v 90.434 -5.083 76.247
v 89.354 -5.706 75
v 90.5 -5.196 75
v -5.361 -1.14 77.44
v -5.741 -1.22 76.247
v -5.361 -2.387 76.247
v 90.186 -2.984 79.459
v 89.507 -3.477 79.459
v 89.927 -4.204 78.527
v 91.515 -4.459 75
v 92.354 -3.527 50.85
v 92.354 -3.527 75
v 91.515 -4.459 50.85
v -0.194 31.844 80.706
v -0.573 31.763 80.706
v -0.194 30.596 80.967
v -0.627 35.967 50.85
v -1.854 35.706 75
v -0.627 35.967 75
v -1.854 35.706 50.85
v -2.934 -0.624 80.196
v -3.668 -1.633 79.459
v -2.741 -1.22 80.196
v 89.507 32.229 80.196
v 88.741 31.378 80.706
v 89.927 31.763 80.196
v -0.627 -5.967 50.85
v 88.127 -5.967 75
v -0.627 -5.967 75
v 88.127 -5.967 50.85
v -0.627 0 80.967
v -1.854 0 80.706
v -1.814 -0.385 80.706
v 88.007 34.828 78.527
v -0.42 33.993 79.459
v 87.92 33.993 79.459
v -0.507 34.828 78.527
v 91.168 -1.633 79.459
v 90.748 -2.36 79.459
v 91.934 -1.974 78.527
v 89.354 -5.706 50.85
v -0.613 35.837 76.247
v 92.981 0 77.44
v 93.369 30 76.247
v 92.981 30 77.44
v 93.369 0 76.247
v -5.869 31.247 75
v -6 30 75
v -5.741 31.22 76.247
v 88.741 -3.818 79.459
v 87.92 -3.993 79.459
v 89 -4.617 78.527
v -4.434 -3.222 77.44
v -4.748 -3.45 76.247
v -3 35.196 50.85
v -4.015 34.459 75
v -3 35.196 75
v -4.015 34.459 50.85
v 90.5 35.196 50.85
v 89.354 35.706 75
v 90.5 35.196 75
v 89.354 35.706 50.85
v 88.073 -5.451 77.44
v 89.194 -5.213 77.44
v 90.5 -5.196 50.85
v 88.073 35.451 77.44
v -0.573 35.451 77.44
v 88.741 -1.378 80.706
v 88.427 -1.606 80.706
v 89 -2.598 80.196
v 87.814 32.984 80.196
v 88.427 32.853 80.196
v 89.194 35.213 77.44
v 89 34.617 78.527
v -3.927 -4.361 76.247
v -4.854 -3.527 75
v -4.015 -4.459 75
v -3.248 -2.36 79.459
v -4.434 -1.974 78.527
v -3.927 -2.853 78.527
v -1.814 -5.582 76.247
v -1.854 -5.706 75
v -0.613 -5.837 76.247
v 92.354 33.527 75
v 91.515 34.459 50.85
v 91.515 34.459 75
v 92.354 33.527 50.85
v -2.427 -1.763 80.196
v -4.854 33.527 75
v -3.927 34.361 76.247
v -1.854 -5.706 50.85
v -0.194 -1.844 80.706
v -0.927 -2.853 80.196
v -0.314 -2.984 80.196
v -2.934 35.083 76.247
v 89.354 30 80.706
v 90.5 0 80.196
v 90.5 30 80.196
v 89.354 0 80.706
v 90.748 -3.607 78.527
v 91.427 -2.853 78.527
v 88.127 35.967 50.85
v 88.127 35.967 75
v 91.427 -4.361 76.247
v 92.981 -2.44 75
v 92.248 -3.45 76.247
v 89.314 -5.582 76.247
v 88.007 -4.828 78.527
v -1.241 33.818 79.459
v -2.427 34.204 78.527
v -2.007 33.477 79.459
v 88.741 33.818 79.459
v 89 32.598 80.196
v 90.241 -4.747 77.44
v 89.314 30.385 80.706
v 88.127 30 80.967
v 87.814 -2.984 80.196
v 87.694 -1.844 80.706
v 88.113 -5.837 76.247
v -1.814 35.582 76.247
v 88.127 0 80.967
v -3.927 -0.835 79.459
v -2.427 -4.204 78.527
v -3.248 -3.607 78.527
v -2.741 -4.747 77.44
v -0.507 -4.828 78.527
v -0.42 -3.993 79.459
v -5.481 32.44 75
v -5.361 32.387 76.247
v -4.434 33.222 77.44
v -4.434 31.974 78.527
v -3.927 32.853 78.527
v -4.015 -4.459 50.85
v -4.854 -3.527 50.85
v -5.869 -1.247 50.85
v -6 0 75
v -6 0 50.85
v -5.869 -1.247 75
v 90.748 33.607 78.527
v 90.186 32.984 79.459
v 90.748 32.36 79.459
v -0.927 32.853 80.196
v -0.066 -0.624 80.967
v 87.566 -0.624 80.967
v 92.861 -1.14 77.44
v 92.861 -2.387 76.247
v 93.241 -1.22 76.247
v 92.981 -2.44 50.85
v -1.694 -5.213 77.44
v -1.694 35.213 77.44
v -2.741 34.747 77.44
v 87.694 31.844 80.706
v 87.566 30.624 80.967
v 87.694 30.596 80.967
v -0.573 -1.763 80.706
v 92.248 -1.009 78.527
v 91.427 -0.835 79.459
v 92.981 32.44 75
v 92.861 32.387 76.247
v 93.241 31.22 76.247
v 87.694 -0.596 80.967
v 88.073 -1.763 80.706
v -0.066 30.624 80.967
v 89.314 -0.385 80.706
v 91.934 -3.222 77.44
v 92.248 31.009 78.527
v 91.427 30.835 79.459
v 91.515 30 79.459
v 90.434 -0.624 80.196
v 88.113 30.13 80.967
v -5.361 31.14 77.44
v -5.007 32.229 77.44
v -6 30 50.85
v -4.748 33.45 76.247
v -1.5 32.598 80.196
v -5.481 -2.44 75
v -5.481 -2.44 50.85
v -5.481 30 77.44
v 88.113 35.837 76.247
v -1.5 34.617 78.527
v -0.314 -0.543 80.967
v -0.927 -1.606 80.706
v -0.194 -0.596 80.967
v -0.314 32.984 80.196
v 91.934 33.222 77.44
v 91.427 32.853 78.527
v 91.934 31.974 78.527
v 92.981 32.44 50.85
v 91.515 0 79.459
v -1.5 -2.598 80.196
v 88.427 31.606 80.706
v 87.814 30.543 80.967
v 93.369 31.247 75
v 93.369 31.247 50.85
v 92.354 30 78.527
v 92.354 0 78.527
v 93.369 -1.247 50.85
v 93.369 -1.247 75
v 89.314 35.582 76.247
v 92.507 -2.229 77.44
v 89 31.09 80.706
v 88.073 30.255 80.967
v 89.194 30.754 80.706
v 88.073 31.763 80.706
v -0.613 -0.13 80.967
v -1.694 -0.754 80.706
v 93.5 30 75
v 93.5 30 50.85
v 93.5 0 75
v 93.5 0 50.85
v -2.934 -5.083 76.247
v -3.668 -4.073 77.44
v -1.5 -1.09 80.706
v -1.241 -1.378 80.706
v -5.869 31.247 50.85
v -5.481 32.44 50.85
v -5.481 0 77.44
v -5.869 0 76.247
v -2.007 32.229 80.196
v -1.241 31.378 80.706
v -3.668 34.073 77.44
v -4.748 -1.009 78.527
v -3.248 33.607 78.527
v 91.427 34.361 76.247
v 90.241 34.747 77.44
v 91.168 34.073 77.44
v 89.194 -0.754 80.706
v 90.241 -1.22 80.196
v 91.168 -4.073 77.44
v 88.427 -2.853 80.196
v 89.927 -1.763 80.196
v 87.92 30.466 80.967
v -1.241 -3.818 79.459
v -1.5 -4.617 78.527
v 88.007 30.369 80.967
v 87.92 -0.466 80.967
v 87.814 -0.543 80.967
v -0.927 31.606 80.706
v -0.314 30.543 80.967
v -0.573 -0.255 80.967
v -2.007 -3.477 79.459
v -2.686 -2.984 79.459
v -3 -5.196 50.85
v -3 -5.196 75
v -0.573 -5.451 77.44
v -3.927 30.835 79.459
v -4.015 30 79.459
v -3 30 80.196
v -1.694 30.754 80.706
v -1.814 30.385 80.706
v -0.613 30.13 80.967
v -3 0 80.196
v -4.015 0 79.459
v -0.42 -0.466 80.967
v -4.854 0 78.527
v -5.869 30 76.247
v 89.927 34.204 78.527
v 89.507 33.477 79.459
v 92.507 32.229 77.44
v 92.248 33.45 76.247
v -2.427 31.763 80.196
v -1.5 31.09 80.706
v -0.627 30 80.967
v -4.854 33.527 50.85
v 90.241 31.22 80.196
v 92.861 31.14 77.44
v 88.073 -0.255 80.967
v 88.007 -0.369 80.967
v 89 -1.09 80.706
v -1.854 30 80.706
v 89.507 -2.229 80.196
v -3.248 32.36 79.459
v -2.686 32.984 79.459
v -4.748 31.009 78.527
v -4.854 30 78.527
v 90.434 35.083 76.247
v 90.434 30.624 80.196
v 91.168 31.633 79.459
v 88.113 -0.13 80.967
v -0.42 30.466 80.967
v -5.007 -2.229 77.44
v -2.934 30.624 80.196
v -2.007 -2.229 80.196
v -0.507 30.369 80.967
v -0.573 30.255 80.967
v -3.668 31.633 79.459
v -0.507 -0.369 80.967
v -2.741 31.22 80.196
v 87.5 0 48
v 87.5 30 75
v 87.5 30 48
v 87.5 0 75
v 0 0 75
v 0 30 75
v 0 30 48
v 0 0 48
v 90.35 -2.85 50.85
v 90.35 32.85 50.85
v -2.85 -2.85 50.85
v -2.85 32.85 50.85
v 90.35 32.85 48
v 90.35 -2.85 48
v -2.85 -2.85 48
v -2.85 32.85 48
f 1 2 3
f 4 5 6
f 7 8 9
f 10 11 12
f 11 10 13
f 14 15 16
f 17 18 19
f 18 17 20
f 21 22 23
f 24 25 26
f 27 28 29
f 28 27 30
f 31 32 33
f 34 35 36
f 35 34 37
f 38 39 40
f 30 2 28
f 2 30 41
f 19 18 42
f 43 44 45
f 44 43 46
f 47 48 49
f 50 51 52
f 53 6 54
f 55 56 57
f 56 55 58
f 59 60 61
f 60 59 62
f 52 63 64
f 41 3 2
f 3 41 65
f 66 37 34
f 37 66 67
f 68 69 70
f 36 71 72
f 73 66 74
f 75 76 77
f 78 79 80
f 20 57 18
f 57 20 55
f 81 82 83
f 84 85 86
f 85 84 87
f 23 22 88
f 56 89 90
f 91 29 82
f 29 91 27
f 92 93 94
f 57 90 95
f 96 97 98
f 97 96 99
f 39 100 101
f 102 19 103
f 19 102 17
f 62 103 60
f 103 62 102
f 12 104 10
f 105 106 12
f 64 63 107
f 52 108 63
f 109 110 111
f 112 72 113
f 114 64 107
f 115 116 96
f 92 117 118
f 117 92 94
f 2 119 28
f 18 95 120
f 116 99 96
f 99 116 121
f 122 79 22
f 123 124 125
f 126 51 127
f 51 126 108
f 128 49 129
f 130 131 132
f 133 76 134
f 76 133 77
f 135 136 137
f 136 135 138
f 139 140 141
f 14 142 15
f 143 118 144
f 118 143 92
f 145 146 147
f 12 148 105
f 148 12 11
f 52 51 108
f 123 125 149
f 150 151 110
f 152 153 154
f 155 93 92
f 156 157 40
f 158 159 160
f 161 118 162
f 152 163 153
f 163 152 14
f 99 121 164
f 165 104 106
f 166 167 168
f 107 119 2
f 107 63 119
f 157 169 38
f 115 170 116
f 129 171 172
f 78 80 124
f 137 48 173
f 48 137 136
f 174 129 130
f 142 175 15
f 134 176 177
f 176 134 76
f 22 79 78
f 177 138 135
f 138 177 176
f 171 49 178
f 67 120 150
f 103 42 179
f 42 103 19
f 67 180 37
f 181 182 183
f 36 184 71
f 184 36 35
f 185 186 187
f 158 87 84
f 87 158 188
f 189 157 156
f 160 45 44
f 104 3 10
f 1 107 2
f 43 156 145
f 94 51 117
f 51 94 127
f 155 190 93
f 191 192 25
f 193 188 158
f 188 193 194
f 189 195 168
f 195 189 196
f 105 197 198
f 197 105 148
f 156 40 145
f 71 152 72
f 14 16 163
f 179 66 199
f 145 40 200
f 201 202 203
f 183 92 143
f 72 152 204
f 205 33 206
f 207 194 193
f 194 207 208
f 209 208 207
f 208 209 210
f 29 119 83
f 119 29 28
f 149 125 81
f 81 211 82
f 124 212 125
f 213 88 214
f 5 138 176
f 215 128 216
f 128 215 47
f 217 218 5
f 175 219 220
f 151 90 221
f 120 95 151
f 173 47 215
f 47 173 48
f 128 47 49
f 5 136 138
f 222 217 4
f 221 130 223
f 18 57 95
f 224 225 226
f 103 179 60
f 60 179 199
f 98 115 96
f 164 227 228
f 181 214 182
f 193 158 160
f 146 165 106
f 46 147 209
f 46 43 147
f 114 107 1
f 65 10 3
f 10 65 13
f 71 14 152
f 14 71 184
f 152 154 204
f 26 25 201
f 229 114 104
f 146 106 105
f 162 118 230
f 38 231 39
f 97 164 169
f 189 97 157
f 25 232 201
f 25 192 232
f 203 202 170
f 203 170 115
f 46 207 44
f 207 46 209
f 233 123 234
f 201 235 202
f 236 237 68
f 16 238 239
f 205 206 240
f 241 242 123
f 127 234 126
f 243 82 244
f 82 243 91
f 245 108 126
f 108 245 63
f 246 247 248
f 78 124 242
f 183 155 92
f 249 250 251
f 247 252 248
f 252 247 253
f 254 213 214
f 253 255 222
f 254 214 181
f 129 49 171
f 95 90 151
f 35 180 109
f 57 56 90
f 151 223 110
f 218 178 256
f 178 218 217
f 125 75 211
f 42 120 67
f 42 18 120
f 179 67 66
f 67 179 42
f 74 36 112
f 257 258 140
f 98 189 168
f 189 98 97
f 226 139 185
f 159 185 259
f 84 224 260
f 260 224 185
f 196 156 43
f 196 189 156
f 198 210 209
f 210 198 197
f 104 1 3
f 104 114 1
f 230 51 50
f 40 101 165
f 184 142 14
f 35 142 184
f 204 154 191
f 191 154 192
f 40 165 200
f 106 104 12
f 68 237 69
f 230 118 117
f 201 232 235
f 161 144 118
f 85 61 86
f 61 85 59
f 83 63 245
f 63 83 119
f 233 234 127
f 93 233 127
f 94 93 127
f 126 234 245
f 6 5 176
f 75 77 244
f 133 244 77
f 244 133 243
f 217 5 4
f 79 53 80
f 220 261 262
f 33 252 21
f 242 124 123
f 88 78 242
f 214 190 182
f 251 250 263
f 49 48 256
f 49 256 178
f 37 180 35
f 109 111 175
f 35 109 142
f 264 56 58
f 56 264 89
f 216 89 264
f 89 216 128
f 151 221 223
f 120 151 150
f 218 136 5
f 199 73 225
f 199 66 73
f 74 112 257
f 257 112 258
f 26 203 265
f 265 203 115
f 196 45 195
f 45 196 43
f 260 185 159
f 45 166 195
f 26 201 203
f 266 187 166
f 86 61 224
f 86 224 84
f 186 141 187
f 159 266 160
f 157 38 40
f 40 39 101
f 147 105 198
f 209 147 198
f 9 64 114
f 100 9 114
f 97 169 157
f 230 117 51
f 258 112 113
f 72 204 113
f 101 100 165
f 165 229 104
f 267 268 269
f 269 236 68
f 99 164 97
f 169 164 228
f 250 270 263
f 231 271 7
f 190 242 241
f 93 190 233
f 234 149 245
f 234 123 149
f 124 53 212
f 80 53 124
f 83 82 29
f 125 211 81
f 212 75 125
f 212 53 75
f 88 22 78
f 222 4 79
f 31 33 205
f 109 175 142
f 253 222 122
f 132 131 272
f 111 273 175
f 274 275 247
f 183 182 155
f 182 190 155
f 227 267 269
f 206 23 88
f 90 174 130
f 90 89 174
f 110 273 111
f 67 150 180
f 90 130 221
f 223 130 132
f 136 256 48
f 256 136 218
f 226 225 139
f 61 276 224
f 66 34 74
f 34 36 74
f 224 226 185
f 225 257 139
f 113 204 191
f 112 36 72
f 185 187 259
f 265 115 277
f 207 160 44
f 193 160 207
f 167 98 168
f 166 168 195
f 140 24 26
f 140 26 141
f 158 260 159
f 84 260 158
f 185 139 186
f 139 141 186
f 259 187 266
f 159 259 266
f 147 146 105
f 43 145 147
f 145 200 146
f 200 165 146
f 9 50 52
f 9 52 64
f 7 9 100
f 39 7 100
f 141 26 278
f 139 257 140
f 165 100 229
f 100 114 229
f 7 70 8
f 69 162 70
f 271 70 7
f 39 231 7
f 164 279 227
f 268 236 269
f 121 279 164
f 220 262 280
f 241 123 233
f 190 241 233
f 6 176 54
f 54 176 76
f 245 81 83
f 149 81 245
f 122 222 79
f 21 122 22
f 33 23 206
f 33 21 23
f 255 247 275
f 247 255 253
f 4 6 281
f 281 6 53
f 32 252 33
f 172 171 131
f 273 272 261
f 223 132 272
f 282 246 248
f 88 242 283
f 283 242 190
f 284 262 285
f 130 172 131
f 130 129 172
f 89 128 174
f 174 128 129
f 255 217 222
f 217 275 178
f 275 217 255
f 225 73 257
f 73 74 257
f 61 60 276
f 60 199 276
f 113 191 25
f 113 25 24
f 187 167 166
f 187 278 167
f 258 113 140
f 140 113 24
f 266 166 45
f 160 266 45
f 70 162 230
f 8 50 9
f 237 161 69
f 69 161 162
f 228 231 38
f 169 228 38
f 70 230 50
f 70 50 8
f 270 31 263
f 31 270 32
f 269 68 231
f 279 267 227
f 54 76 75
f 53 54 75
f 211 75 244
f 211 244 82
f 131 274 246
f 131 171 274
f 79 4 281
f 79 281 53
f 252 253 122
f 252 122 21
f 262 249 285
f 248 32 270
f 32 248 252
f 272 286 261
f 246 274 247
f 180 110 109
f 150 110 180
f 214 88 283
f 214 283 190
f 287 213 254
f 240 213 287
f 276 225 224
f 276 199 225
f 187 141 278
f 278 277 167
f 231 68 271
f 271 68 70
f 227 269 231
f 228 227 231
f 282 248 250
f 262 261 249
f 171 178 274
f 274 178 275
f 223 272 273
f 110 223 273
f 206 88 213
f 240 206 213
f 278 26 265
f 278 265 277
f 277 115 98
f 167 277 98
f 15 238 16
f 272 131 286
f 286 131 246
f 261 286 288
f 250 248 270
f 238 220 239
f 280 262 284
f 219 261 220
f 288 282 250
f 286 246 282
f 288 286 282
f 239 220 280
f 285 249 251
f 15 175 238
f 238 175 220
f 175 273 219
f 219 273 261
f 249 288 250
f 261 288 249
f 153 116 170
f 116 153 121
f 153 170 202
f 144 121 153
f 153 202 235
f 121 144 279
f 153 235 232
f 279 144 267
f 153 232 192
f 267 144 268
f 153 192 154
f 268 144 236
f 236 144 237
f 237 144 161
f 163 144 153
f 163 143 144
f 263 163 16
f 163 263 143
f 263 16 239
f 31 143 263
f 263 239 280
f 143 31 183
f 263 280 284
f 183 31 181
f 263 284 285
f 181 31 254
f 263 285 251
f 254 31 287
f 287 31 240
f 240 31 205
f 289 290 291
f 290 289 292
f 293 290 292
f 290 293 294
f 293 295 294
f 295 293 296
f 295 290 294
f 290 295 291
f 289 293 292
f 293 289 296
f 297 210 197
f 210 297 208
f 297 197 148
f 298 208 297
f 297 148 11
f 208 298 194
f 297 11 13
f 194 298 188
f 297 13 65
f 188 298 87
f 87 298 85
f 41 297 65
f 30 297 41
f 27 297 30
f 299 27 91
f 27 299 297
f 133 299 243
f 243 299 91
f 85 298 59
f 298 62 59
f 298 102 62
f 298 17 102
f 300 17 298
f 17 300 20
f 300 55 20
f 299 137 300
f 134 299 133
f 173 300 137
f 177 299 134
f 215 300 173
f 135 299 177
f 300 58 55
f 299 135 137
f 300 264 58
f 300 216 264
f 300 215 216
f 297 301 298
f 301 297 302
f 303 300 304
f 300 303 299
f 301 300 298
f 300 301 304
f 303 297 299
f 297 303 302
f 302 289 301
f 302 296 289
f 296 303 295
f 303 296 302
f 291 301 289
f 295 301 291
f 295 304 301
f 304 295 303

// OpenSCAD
difference () {
  translate ([43.75, 15.0, 75/2]) {
    difference () {
      minkowski () {
        cube ([87.5, 30.0, 75], center=true);
        sphere ($fn=30, r=6);
      }
      cube ([87.5, 30.0, 75], center=true);
    }
  }
  translate ([0, 0, -52]) {
    cube ([200, 200, 200], center=true);
  }
  translate ([43.74999999999999, 15.000000000000002, -49.15]) {
    difference () {
      cube ([300, 300, 200], center=true);
      cube ([93.19999999999999, 35.7, 300], center=true);
    }
  }
}
